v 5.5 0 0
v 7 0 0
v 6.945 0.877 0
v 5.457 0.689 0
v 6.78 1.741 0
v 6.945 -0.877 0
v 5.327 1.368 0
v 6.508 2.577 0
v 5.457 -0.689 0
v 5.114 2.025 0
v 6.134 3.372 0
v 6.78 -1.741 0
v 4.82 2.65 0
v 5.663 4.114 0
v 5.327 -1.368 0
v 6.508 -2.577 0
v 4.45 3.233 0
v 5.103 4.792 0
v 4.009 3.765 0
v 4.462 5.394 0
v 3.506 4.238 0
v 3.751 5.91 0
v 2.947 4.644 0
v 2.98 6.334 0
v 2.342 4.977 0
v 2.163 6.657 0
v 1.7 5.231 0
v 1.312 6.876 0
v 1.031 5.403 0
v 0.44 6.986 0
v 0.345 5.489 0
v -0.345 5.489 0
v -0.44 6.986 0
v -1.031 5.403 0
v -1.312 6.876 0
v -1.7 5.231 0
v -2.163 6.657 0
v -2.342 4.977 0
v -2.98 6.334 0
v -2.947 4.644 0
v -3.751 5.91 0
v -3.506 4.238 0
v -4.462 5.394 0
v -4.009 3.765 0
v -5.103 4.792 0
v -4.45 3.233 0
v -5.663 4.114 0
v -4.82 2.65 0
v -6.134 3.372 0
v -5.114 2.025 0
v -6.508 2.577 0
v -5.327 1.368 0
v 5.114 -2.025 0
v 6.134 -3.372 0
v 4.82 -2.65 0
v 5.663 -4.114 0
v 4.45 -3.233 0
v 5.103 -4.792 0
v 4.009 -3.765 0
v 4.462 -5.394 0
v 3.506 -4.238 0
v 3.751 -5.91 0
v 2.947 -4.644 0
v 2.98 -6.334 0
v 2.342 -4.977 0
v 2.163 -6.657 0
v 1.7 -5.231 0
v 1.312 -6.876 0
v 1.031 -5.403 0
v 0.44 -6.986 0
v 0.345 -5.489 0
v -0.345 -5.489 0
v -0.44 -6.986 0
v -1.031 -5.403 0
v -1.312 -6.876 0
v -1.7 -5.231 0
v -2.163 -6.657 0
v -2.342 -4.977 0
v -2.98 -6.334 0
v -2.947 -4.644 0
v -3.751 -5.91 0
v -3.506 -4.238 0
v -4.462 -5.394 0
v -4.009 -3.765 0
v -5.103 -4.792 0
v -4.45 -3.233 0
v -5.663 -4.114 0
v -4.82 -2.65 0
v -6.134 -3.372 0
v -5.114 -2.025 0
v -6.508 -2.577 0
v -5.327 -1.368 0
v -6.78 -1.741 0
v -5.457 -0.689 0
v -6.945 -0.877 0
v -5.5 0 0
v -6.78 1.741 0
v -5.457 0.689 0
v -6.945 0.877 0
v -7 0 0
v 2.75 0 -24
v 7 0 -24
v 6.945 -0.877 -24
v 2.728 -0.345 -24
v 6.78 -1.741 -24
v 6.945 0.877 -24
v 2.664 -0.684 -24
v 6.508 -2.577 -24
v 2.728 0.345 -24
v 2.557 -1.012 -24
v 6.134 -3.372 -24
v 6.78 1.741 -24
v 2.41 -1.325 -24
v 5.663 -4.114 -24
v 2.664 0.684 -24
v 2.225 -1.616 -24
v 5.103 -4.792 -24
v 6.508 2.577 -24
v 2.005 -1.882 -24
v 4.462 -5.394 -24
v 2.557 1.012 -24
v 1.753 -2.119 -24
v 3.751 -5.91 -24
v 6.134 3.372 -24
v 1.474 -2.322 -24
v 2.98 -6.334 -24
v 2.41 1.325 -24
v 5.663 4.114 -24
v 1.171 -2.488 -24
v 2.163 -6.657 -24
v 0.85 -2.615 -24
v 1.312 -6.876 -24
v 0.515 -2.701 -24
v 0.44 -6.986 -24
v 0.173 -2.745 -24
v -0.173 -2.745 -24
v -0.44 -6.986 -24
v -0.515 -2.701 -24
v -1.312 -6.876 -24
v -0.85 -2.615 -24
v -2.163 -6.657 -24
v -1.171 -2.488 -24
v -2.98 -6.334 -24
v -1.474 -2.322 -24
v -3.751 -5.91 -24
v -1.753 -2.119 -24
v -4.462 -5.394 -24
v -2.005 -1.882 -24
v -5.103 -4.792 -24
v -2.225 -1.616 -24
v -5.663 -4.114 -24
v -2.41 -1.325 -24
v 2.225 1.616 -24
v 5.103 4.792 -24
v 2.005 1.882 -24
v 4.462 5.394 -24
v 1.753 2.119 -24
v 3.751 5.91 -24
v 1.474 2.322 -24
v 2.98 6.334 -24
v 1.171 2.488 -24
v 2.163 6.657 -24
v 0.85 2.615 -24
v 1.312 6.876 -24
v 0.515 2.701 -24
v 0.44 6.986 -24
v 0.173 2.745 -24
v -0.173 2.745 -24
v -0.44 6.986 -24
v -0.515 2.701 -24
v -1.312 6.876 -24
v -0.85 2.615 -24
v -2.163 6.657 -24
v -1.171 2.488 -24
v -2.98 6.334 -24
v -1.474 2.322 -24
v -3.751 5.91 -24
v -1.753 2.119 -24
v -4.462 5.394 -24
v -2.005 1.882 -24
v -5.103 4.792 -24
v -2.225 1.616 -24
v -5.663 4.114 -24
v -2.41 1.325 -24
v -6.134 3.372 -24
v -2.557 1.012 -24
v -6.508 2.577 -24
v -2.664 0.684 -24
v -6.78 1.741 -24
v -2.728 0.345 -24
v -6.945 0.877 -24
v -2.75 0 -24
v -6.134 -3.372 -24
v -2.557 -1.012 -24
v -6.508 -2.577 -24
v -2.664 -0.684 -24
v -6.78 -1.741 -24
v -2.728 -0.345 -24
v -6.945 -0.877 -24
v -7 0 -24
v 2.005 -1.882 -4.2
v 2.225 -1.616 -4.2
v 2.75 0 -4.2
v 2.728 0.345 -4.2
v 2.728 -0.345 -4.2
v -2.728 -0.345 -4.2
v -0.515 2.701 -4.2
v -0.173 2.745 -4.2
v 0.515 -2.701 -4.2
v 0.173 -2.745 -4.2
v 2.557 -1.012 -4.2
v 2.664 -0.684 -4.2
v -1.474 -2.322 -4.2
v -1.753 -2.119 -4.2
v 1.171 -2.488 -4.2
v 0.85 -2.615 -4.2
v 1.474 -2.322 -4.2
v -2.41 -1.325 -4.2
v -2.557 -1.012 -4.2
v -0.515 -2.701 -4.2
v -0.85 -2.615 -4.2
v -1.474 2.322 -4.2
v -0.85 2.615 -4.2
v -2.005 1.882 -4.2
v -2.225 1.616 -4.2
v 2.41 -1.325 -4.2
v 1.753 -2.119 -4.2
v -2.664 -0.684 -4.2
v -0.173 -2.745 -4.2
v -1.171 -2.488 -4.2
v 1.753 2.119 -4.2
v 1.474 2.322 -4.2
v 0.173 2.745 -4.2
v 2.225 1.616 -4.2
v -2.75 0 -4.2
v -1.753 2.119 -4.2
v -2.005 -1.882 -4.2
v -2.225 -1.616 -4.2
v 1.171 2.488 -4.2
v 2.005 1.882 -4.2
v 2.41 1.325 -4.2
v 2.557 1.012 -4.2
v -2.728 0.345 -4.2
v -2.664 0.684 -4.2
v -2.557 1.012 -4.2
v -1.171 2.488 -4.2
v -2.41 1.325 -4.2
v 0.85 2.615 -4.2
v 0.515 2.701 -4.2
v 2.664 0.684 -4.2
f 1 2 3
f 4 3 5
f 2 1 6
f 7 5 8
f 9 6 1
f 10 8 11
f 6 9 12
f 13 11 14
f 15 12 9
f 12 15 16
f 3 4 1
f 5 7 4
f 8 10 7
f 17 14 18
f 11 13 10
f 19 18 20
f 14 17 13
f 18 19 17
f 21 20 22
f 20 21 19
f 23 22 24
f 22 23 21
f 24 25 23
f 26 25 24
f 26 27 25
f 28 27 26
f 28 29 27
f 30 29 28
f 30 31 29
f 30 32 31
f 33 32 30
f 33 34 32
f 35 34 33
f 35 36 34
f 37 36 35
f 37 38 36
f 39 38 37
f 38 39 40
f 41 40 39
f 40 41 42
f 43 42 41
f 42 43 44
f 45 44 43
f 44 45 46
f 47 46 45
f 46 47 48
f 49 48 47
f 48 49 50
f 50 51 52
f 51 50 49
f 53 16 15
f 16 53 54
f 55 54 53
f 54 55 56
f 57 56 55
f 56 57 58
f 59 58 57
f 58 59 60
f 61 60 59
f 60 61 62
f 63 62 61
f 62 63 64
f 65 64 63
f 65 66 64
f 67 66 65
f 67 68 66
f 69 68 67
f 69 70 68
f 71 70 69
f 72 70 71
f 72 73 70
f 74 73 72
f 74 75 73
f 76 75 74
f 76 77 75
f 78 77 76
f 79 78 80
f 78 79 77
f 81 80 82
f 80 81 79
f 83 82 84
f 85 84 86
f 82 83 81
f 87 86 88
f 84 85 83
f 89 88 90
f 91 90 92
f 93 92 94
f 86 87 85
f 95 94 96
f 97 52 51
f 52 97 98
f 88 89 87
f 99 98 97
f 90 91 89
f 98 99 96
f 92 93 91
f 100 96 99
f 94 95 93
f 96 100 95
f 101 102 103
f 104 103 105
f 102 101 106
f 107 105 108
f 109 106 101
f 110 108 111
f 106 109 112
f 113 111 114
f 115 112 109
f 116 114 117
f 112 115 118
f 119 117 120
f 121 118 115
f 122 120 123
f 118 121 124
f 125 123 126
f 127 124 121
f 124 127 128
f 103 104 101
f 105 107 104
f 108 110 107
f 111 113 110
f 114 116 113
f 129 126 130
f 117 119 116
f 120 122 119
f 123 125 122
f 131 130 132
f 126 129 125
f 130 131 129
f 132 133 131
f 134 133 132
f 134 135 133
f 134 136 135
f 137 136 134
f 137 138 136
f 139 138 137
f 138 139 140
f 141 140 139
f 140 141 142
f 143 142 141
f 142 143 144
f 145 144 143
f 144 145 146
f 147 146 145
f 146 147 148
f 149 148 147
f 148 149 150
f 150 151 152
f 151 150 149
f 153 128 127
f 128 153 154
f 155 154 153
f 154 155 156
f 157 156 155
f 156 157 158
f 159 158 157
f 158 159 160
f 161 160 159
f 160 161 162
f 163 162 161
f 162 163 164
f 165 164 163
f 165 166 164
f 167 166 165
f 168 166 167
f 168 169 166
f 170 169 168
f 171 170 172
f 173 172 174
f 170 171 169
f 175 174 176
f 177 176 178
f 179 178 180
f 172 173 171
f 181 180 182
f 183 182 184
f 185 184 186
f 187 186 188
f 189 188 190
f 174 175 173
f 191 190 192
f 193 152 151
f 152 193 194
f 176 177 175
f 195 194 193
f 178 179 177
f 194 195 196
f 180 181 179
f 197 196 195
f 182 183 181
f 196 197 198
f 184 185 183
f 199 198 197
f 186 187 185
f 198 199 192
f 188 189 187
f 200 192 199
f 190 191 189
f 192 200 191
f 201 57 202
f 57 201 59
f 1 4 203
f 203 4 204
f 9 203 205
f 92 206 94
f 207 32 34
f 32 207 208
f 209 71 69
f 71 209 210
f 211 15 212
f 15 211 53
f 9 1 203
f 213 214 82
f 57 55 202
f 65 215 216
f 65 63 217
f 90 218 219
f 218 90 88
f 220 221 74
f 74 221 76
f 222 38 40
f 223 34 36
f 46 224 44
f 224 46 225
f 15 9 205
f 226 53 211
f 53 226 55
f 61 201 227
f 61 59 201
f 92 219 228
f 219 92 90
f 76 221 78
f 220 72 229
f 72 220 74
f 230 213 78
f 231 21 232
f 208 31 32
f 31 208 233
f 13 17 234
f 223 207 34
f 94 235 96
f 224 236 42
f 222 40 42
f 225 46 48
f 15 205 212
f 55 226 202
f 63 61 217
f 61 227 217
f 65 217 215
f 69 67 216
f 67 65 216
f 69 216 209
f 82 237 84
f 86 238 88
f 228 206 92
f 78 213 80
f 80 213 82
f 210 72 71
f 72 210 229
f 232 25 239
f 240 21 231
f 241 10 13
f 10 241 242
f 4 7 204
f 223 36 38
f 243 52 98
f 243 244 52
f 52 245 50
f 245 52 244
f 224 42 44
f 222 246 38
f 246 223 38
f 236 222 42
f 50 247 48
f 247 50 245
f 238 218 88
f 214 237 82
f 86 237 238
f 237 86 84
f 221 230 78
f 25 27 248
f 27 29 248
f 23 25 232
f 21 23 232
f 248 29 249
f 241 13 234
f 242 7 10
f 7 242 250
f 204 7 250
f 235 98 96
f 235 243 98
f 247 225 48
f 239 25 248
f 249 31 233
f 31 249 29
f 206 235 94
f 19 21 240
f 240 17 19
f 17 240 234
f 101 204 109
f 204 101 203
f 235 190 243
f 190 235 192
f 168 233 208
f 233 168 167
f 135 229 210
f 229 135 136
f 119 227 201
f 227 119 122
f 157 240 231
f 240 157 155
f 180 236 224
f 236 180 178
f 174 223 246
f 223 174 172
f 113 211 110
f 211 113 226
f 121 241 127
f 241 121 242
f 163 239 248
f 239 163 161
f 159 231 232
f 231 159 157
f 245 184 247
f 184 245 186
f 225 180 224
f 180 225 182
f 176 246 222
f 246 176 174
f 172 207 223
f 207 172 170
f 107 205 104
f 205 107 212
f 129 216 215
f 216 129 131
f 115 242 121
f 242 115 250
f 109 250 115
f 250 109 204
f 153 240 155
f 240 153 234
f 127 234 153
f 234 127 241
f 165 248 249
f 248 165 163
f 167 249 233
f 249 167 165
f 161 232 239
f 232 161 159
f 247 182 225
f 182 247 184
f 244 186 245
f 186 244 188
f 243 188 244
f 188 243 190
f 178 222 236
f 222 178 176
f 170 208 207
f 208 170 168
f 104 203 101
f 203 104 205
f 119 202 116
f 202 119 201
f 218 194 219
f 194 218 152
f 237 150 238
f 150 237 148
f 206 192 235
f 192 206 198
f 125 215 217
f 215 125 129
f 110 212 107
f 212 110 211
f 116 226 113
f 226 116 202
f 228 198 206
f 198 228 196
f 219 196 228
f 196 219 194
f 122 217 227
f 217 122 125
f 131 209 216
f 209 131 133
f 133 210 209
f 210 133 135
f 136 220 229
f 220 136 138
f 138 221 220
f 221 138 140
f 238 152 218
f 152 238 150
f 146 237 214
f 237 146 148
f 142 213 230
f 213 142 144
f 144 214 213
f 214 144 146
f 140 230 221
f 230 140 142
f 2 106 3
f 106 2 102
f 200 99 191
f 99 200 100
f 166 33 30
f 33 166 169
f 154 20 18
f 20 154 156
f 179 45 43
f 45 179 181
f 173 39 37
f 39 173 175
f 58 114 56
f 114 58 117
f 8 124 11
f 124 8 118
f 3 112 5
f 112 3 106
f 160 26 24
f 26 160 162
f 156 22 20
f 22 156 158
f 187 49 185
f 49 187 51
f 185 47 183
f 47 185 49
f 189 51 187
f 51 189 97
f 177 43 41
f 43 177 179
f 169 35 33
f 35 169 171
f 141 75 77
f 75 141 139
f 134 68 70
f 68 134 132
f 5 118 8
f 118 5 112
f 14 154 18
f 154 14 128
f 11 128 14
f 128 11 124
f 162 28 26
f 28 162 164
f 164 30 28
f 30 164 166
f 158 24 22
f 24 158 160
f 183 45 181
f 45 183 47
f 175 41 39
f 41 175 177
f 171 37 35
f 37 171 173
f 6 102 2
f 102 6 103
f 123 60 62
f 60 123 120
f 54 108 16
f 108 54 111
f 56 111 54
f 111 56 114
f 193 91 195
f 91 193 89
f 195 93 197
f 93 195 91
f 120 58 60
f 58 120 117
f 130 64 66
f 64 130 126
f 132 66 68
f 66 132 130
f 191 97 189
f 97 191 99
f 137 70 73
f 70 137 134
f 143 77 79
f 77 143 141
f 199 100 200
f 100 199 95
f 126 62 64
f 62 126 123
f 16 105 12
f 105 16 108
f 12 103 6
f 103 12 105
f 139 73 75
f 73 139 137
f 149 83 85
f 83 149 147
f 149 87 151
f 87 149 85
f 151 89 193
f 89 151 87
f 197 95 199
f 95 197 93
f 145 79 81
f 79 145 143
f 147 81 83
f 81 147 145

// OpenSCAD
$fn = 50;


difference() {
	union() {
		translate(v = [0, 0, -24.0000000000]) {
			cylinder(h = 24, r = 7.0000000000);
		}
		cylinder(h = 0, r = 17.0000000000);
	}
	union() {
		translate(v = [0, 0, 0]) {
			rotate(a = [0, 0, 0]) {
				difference() {
					union() {
						#translate(v = [0, 0, -24.0000000000]) {
							cylinder(h = 24, r = 2.2500000000);
						}
						#translate(v = [0, 0, -4.2000000000]) {
							cylinder(h = 4.2000000000, r = 7.0000000000, r1 = 2.7500000000, r2 = 5.5000000000);
						}
						#translate(v = [0, 0, -24.0000000000]) {
							cylinder(h = 24, r = 2.7500000000);
						}
						#translate(v = [0, 0, -24.0000000000]) {
							cylinder(h = 24, r = 2.2500000000);
						}
					}
					union();
				}
			}
		}
	}
}
